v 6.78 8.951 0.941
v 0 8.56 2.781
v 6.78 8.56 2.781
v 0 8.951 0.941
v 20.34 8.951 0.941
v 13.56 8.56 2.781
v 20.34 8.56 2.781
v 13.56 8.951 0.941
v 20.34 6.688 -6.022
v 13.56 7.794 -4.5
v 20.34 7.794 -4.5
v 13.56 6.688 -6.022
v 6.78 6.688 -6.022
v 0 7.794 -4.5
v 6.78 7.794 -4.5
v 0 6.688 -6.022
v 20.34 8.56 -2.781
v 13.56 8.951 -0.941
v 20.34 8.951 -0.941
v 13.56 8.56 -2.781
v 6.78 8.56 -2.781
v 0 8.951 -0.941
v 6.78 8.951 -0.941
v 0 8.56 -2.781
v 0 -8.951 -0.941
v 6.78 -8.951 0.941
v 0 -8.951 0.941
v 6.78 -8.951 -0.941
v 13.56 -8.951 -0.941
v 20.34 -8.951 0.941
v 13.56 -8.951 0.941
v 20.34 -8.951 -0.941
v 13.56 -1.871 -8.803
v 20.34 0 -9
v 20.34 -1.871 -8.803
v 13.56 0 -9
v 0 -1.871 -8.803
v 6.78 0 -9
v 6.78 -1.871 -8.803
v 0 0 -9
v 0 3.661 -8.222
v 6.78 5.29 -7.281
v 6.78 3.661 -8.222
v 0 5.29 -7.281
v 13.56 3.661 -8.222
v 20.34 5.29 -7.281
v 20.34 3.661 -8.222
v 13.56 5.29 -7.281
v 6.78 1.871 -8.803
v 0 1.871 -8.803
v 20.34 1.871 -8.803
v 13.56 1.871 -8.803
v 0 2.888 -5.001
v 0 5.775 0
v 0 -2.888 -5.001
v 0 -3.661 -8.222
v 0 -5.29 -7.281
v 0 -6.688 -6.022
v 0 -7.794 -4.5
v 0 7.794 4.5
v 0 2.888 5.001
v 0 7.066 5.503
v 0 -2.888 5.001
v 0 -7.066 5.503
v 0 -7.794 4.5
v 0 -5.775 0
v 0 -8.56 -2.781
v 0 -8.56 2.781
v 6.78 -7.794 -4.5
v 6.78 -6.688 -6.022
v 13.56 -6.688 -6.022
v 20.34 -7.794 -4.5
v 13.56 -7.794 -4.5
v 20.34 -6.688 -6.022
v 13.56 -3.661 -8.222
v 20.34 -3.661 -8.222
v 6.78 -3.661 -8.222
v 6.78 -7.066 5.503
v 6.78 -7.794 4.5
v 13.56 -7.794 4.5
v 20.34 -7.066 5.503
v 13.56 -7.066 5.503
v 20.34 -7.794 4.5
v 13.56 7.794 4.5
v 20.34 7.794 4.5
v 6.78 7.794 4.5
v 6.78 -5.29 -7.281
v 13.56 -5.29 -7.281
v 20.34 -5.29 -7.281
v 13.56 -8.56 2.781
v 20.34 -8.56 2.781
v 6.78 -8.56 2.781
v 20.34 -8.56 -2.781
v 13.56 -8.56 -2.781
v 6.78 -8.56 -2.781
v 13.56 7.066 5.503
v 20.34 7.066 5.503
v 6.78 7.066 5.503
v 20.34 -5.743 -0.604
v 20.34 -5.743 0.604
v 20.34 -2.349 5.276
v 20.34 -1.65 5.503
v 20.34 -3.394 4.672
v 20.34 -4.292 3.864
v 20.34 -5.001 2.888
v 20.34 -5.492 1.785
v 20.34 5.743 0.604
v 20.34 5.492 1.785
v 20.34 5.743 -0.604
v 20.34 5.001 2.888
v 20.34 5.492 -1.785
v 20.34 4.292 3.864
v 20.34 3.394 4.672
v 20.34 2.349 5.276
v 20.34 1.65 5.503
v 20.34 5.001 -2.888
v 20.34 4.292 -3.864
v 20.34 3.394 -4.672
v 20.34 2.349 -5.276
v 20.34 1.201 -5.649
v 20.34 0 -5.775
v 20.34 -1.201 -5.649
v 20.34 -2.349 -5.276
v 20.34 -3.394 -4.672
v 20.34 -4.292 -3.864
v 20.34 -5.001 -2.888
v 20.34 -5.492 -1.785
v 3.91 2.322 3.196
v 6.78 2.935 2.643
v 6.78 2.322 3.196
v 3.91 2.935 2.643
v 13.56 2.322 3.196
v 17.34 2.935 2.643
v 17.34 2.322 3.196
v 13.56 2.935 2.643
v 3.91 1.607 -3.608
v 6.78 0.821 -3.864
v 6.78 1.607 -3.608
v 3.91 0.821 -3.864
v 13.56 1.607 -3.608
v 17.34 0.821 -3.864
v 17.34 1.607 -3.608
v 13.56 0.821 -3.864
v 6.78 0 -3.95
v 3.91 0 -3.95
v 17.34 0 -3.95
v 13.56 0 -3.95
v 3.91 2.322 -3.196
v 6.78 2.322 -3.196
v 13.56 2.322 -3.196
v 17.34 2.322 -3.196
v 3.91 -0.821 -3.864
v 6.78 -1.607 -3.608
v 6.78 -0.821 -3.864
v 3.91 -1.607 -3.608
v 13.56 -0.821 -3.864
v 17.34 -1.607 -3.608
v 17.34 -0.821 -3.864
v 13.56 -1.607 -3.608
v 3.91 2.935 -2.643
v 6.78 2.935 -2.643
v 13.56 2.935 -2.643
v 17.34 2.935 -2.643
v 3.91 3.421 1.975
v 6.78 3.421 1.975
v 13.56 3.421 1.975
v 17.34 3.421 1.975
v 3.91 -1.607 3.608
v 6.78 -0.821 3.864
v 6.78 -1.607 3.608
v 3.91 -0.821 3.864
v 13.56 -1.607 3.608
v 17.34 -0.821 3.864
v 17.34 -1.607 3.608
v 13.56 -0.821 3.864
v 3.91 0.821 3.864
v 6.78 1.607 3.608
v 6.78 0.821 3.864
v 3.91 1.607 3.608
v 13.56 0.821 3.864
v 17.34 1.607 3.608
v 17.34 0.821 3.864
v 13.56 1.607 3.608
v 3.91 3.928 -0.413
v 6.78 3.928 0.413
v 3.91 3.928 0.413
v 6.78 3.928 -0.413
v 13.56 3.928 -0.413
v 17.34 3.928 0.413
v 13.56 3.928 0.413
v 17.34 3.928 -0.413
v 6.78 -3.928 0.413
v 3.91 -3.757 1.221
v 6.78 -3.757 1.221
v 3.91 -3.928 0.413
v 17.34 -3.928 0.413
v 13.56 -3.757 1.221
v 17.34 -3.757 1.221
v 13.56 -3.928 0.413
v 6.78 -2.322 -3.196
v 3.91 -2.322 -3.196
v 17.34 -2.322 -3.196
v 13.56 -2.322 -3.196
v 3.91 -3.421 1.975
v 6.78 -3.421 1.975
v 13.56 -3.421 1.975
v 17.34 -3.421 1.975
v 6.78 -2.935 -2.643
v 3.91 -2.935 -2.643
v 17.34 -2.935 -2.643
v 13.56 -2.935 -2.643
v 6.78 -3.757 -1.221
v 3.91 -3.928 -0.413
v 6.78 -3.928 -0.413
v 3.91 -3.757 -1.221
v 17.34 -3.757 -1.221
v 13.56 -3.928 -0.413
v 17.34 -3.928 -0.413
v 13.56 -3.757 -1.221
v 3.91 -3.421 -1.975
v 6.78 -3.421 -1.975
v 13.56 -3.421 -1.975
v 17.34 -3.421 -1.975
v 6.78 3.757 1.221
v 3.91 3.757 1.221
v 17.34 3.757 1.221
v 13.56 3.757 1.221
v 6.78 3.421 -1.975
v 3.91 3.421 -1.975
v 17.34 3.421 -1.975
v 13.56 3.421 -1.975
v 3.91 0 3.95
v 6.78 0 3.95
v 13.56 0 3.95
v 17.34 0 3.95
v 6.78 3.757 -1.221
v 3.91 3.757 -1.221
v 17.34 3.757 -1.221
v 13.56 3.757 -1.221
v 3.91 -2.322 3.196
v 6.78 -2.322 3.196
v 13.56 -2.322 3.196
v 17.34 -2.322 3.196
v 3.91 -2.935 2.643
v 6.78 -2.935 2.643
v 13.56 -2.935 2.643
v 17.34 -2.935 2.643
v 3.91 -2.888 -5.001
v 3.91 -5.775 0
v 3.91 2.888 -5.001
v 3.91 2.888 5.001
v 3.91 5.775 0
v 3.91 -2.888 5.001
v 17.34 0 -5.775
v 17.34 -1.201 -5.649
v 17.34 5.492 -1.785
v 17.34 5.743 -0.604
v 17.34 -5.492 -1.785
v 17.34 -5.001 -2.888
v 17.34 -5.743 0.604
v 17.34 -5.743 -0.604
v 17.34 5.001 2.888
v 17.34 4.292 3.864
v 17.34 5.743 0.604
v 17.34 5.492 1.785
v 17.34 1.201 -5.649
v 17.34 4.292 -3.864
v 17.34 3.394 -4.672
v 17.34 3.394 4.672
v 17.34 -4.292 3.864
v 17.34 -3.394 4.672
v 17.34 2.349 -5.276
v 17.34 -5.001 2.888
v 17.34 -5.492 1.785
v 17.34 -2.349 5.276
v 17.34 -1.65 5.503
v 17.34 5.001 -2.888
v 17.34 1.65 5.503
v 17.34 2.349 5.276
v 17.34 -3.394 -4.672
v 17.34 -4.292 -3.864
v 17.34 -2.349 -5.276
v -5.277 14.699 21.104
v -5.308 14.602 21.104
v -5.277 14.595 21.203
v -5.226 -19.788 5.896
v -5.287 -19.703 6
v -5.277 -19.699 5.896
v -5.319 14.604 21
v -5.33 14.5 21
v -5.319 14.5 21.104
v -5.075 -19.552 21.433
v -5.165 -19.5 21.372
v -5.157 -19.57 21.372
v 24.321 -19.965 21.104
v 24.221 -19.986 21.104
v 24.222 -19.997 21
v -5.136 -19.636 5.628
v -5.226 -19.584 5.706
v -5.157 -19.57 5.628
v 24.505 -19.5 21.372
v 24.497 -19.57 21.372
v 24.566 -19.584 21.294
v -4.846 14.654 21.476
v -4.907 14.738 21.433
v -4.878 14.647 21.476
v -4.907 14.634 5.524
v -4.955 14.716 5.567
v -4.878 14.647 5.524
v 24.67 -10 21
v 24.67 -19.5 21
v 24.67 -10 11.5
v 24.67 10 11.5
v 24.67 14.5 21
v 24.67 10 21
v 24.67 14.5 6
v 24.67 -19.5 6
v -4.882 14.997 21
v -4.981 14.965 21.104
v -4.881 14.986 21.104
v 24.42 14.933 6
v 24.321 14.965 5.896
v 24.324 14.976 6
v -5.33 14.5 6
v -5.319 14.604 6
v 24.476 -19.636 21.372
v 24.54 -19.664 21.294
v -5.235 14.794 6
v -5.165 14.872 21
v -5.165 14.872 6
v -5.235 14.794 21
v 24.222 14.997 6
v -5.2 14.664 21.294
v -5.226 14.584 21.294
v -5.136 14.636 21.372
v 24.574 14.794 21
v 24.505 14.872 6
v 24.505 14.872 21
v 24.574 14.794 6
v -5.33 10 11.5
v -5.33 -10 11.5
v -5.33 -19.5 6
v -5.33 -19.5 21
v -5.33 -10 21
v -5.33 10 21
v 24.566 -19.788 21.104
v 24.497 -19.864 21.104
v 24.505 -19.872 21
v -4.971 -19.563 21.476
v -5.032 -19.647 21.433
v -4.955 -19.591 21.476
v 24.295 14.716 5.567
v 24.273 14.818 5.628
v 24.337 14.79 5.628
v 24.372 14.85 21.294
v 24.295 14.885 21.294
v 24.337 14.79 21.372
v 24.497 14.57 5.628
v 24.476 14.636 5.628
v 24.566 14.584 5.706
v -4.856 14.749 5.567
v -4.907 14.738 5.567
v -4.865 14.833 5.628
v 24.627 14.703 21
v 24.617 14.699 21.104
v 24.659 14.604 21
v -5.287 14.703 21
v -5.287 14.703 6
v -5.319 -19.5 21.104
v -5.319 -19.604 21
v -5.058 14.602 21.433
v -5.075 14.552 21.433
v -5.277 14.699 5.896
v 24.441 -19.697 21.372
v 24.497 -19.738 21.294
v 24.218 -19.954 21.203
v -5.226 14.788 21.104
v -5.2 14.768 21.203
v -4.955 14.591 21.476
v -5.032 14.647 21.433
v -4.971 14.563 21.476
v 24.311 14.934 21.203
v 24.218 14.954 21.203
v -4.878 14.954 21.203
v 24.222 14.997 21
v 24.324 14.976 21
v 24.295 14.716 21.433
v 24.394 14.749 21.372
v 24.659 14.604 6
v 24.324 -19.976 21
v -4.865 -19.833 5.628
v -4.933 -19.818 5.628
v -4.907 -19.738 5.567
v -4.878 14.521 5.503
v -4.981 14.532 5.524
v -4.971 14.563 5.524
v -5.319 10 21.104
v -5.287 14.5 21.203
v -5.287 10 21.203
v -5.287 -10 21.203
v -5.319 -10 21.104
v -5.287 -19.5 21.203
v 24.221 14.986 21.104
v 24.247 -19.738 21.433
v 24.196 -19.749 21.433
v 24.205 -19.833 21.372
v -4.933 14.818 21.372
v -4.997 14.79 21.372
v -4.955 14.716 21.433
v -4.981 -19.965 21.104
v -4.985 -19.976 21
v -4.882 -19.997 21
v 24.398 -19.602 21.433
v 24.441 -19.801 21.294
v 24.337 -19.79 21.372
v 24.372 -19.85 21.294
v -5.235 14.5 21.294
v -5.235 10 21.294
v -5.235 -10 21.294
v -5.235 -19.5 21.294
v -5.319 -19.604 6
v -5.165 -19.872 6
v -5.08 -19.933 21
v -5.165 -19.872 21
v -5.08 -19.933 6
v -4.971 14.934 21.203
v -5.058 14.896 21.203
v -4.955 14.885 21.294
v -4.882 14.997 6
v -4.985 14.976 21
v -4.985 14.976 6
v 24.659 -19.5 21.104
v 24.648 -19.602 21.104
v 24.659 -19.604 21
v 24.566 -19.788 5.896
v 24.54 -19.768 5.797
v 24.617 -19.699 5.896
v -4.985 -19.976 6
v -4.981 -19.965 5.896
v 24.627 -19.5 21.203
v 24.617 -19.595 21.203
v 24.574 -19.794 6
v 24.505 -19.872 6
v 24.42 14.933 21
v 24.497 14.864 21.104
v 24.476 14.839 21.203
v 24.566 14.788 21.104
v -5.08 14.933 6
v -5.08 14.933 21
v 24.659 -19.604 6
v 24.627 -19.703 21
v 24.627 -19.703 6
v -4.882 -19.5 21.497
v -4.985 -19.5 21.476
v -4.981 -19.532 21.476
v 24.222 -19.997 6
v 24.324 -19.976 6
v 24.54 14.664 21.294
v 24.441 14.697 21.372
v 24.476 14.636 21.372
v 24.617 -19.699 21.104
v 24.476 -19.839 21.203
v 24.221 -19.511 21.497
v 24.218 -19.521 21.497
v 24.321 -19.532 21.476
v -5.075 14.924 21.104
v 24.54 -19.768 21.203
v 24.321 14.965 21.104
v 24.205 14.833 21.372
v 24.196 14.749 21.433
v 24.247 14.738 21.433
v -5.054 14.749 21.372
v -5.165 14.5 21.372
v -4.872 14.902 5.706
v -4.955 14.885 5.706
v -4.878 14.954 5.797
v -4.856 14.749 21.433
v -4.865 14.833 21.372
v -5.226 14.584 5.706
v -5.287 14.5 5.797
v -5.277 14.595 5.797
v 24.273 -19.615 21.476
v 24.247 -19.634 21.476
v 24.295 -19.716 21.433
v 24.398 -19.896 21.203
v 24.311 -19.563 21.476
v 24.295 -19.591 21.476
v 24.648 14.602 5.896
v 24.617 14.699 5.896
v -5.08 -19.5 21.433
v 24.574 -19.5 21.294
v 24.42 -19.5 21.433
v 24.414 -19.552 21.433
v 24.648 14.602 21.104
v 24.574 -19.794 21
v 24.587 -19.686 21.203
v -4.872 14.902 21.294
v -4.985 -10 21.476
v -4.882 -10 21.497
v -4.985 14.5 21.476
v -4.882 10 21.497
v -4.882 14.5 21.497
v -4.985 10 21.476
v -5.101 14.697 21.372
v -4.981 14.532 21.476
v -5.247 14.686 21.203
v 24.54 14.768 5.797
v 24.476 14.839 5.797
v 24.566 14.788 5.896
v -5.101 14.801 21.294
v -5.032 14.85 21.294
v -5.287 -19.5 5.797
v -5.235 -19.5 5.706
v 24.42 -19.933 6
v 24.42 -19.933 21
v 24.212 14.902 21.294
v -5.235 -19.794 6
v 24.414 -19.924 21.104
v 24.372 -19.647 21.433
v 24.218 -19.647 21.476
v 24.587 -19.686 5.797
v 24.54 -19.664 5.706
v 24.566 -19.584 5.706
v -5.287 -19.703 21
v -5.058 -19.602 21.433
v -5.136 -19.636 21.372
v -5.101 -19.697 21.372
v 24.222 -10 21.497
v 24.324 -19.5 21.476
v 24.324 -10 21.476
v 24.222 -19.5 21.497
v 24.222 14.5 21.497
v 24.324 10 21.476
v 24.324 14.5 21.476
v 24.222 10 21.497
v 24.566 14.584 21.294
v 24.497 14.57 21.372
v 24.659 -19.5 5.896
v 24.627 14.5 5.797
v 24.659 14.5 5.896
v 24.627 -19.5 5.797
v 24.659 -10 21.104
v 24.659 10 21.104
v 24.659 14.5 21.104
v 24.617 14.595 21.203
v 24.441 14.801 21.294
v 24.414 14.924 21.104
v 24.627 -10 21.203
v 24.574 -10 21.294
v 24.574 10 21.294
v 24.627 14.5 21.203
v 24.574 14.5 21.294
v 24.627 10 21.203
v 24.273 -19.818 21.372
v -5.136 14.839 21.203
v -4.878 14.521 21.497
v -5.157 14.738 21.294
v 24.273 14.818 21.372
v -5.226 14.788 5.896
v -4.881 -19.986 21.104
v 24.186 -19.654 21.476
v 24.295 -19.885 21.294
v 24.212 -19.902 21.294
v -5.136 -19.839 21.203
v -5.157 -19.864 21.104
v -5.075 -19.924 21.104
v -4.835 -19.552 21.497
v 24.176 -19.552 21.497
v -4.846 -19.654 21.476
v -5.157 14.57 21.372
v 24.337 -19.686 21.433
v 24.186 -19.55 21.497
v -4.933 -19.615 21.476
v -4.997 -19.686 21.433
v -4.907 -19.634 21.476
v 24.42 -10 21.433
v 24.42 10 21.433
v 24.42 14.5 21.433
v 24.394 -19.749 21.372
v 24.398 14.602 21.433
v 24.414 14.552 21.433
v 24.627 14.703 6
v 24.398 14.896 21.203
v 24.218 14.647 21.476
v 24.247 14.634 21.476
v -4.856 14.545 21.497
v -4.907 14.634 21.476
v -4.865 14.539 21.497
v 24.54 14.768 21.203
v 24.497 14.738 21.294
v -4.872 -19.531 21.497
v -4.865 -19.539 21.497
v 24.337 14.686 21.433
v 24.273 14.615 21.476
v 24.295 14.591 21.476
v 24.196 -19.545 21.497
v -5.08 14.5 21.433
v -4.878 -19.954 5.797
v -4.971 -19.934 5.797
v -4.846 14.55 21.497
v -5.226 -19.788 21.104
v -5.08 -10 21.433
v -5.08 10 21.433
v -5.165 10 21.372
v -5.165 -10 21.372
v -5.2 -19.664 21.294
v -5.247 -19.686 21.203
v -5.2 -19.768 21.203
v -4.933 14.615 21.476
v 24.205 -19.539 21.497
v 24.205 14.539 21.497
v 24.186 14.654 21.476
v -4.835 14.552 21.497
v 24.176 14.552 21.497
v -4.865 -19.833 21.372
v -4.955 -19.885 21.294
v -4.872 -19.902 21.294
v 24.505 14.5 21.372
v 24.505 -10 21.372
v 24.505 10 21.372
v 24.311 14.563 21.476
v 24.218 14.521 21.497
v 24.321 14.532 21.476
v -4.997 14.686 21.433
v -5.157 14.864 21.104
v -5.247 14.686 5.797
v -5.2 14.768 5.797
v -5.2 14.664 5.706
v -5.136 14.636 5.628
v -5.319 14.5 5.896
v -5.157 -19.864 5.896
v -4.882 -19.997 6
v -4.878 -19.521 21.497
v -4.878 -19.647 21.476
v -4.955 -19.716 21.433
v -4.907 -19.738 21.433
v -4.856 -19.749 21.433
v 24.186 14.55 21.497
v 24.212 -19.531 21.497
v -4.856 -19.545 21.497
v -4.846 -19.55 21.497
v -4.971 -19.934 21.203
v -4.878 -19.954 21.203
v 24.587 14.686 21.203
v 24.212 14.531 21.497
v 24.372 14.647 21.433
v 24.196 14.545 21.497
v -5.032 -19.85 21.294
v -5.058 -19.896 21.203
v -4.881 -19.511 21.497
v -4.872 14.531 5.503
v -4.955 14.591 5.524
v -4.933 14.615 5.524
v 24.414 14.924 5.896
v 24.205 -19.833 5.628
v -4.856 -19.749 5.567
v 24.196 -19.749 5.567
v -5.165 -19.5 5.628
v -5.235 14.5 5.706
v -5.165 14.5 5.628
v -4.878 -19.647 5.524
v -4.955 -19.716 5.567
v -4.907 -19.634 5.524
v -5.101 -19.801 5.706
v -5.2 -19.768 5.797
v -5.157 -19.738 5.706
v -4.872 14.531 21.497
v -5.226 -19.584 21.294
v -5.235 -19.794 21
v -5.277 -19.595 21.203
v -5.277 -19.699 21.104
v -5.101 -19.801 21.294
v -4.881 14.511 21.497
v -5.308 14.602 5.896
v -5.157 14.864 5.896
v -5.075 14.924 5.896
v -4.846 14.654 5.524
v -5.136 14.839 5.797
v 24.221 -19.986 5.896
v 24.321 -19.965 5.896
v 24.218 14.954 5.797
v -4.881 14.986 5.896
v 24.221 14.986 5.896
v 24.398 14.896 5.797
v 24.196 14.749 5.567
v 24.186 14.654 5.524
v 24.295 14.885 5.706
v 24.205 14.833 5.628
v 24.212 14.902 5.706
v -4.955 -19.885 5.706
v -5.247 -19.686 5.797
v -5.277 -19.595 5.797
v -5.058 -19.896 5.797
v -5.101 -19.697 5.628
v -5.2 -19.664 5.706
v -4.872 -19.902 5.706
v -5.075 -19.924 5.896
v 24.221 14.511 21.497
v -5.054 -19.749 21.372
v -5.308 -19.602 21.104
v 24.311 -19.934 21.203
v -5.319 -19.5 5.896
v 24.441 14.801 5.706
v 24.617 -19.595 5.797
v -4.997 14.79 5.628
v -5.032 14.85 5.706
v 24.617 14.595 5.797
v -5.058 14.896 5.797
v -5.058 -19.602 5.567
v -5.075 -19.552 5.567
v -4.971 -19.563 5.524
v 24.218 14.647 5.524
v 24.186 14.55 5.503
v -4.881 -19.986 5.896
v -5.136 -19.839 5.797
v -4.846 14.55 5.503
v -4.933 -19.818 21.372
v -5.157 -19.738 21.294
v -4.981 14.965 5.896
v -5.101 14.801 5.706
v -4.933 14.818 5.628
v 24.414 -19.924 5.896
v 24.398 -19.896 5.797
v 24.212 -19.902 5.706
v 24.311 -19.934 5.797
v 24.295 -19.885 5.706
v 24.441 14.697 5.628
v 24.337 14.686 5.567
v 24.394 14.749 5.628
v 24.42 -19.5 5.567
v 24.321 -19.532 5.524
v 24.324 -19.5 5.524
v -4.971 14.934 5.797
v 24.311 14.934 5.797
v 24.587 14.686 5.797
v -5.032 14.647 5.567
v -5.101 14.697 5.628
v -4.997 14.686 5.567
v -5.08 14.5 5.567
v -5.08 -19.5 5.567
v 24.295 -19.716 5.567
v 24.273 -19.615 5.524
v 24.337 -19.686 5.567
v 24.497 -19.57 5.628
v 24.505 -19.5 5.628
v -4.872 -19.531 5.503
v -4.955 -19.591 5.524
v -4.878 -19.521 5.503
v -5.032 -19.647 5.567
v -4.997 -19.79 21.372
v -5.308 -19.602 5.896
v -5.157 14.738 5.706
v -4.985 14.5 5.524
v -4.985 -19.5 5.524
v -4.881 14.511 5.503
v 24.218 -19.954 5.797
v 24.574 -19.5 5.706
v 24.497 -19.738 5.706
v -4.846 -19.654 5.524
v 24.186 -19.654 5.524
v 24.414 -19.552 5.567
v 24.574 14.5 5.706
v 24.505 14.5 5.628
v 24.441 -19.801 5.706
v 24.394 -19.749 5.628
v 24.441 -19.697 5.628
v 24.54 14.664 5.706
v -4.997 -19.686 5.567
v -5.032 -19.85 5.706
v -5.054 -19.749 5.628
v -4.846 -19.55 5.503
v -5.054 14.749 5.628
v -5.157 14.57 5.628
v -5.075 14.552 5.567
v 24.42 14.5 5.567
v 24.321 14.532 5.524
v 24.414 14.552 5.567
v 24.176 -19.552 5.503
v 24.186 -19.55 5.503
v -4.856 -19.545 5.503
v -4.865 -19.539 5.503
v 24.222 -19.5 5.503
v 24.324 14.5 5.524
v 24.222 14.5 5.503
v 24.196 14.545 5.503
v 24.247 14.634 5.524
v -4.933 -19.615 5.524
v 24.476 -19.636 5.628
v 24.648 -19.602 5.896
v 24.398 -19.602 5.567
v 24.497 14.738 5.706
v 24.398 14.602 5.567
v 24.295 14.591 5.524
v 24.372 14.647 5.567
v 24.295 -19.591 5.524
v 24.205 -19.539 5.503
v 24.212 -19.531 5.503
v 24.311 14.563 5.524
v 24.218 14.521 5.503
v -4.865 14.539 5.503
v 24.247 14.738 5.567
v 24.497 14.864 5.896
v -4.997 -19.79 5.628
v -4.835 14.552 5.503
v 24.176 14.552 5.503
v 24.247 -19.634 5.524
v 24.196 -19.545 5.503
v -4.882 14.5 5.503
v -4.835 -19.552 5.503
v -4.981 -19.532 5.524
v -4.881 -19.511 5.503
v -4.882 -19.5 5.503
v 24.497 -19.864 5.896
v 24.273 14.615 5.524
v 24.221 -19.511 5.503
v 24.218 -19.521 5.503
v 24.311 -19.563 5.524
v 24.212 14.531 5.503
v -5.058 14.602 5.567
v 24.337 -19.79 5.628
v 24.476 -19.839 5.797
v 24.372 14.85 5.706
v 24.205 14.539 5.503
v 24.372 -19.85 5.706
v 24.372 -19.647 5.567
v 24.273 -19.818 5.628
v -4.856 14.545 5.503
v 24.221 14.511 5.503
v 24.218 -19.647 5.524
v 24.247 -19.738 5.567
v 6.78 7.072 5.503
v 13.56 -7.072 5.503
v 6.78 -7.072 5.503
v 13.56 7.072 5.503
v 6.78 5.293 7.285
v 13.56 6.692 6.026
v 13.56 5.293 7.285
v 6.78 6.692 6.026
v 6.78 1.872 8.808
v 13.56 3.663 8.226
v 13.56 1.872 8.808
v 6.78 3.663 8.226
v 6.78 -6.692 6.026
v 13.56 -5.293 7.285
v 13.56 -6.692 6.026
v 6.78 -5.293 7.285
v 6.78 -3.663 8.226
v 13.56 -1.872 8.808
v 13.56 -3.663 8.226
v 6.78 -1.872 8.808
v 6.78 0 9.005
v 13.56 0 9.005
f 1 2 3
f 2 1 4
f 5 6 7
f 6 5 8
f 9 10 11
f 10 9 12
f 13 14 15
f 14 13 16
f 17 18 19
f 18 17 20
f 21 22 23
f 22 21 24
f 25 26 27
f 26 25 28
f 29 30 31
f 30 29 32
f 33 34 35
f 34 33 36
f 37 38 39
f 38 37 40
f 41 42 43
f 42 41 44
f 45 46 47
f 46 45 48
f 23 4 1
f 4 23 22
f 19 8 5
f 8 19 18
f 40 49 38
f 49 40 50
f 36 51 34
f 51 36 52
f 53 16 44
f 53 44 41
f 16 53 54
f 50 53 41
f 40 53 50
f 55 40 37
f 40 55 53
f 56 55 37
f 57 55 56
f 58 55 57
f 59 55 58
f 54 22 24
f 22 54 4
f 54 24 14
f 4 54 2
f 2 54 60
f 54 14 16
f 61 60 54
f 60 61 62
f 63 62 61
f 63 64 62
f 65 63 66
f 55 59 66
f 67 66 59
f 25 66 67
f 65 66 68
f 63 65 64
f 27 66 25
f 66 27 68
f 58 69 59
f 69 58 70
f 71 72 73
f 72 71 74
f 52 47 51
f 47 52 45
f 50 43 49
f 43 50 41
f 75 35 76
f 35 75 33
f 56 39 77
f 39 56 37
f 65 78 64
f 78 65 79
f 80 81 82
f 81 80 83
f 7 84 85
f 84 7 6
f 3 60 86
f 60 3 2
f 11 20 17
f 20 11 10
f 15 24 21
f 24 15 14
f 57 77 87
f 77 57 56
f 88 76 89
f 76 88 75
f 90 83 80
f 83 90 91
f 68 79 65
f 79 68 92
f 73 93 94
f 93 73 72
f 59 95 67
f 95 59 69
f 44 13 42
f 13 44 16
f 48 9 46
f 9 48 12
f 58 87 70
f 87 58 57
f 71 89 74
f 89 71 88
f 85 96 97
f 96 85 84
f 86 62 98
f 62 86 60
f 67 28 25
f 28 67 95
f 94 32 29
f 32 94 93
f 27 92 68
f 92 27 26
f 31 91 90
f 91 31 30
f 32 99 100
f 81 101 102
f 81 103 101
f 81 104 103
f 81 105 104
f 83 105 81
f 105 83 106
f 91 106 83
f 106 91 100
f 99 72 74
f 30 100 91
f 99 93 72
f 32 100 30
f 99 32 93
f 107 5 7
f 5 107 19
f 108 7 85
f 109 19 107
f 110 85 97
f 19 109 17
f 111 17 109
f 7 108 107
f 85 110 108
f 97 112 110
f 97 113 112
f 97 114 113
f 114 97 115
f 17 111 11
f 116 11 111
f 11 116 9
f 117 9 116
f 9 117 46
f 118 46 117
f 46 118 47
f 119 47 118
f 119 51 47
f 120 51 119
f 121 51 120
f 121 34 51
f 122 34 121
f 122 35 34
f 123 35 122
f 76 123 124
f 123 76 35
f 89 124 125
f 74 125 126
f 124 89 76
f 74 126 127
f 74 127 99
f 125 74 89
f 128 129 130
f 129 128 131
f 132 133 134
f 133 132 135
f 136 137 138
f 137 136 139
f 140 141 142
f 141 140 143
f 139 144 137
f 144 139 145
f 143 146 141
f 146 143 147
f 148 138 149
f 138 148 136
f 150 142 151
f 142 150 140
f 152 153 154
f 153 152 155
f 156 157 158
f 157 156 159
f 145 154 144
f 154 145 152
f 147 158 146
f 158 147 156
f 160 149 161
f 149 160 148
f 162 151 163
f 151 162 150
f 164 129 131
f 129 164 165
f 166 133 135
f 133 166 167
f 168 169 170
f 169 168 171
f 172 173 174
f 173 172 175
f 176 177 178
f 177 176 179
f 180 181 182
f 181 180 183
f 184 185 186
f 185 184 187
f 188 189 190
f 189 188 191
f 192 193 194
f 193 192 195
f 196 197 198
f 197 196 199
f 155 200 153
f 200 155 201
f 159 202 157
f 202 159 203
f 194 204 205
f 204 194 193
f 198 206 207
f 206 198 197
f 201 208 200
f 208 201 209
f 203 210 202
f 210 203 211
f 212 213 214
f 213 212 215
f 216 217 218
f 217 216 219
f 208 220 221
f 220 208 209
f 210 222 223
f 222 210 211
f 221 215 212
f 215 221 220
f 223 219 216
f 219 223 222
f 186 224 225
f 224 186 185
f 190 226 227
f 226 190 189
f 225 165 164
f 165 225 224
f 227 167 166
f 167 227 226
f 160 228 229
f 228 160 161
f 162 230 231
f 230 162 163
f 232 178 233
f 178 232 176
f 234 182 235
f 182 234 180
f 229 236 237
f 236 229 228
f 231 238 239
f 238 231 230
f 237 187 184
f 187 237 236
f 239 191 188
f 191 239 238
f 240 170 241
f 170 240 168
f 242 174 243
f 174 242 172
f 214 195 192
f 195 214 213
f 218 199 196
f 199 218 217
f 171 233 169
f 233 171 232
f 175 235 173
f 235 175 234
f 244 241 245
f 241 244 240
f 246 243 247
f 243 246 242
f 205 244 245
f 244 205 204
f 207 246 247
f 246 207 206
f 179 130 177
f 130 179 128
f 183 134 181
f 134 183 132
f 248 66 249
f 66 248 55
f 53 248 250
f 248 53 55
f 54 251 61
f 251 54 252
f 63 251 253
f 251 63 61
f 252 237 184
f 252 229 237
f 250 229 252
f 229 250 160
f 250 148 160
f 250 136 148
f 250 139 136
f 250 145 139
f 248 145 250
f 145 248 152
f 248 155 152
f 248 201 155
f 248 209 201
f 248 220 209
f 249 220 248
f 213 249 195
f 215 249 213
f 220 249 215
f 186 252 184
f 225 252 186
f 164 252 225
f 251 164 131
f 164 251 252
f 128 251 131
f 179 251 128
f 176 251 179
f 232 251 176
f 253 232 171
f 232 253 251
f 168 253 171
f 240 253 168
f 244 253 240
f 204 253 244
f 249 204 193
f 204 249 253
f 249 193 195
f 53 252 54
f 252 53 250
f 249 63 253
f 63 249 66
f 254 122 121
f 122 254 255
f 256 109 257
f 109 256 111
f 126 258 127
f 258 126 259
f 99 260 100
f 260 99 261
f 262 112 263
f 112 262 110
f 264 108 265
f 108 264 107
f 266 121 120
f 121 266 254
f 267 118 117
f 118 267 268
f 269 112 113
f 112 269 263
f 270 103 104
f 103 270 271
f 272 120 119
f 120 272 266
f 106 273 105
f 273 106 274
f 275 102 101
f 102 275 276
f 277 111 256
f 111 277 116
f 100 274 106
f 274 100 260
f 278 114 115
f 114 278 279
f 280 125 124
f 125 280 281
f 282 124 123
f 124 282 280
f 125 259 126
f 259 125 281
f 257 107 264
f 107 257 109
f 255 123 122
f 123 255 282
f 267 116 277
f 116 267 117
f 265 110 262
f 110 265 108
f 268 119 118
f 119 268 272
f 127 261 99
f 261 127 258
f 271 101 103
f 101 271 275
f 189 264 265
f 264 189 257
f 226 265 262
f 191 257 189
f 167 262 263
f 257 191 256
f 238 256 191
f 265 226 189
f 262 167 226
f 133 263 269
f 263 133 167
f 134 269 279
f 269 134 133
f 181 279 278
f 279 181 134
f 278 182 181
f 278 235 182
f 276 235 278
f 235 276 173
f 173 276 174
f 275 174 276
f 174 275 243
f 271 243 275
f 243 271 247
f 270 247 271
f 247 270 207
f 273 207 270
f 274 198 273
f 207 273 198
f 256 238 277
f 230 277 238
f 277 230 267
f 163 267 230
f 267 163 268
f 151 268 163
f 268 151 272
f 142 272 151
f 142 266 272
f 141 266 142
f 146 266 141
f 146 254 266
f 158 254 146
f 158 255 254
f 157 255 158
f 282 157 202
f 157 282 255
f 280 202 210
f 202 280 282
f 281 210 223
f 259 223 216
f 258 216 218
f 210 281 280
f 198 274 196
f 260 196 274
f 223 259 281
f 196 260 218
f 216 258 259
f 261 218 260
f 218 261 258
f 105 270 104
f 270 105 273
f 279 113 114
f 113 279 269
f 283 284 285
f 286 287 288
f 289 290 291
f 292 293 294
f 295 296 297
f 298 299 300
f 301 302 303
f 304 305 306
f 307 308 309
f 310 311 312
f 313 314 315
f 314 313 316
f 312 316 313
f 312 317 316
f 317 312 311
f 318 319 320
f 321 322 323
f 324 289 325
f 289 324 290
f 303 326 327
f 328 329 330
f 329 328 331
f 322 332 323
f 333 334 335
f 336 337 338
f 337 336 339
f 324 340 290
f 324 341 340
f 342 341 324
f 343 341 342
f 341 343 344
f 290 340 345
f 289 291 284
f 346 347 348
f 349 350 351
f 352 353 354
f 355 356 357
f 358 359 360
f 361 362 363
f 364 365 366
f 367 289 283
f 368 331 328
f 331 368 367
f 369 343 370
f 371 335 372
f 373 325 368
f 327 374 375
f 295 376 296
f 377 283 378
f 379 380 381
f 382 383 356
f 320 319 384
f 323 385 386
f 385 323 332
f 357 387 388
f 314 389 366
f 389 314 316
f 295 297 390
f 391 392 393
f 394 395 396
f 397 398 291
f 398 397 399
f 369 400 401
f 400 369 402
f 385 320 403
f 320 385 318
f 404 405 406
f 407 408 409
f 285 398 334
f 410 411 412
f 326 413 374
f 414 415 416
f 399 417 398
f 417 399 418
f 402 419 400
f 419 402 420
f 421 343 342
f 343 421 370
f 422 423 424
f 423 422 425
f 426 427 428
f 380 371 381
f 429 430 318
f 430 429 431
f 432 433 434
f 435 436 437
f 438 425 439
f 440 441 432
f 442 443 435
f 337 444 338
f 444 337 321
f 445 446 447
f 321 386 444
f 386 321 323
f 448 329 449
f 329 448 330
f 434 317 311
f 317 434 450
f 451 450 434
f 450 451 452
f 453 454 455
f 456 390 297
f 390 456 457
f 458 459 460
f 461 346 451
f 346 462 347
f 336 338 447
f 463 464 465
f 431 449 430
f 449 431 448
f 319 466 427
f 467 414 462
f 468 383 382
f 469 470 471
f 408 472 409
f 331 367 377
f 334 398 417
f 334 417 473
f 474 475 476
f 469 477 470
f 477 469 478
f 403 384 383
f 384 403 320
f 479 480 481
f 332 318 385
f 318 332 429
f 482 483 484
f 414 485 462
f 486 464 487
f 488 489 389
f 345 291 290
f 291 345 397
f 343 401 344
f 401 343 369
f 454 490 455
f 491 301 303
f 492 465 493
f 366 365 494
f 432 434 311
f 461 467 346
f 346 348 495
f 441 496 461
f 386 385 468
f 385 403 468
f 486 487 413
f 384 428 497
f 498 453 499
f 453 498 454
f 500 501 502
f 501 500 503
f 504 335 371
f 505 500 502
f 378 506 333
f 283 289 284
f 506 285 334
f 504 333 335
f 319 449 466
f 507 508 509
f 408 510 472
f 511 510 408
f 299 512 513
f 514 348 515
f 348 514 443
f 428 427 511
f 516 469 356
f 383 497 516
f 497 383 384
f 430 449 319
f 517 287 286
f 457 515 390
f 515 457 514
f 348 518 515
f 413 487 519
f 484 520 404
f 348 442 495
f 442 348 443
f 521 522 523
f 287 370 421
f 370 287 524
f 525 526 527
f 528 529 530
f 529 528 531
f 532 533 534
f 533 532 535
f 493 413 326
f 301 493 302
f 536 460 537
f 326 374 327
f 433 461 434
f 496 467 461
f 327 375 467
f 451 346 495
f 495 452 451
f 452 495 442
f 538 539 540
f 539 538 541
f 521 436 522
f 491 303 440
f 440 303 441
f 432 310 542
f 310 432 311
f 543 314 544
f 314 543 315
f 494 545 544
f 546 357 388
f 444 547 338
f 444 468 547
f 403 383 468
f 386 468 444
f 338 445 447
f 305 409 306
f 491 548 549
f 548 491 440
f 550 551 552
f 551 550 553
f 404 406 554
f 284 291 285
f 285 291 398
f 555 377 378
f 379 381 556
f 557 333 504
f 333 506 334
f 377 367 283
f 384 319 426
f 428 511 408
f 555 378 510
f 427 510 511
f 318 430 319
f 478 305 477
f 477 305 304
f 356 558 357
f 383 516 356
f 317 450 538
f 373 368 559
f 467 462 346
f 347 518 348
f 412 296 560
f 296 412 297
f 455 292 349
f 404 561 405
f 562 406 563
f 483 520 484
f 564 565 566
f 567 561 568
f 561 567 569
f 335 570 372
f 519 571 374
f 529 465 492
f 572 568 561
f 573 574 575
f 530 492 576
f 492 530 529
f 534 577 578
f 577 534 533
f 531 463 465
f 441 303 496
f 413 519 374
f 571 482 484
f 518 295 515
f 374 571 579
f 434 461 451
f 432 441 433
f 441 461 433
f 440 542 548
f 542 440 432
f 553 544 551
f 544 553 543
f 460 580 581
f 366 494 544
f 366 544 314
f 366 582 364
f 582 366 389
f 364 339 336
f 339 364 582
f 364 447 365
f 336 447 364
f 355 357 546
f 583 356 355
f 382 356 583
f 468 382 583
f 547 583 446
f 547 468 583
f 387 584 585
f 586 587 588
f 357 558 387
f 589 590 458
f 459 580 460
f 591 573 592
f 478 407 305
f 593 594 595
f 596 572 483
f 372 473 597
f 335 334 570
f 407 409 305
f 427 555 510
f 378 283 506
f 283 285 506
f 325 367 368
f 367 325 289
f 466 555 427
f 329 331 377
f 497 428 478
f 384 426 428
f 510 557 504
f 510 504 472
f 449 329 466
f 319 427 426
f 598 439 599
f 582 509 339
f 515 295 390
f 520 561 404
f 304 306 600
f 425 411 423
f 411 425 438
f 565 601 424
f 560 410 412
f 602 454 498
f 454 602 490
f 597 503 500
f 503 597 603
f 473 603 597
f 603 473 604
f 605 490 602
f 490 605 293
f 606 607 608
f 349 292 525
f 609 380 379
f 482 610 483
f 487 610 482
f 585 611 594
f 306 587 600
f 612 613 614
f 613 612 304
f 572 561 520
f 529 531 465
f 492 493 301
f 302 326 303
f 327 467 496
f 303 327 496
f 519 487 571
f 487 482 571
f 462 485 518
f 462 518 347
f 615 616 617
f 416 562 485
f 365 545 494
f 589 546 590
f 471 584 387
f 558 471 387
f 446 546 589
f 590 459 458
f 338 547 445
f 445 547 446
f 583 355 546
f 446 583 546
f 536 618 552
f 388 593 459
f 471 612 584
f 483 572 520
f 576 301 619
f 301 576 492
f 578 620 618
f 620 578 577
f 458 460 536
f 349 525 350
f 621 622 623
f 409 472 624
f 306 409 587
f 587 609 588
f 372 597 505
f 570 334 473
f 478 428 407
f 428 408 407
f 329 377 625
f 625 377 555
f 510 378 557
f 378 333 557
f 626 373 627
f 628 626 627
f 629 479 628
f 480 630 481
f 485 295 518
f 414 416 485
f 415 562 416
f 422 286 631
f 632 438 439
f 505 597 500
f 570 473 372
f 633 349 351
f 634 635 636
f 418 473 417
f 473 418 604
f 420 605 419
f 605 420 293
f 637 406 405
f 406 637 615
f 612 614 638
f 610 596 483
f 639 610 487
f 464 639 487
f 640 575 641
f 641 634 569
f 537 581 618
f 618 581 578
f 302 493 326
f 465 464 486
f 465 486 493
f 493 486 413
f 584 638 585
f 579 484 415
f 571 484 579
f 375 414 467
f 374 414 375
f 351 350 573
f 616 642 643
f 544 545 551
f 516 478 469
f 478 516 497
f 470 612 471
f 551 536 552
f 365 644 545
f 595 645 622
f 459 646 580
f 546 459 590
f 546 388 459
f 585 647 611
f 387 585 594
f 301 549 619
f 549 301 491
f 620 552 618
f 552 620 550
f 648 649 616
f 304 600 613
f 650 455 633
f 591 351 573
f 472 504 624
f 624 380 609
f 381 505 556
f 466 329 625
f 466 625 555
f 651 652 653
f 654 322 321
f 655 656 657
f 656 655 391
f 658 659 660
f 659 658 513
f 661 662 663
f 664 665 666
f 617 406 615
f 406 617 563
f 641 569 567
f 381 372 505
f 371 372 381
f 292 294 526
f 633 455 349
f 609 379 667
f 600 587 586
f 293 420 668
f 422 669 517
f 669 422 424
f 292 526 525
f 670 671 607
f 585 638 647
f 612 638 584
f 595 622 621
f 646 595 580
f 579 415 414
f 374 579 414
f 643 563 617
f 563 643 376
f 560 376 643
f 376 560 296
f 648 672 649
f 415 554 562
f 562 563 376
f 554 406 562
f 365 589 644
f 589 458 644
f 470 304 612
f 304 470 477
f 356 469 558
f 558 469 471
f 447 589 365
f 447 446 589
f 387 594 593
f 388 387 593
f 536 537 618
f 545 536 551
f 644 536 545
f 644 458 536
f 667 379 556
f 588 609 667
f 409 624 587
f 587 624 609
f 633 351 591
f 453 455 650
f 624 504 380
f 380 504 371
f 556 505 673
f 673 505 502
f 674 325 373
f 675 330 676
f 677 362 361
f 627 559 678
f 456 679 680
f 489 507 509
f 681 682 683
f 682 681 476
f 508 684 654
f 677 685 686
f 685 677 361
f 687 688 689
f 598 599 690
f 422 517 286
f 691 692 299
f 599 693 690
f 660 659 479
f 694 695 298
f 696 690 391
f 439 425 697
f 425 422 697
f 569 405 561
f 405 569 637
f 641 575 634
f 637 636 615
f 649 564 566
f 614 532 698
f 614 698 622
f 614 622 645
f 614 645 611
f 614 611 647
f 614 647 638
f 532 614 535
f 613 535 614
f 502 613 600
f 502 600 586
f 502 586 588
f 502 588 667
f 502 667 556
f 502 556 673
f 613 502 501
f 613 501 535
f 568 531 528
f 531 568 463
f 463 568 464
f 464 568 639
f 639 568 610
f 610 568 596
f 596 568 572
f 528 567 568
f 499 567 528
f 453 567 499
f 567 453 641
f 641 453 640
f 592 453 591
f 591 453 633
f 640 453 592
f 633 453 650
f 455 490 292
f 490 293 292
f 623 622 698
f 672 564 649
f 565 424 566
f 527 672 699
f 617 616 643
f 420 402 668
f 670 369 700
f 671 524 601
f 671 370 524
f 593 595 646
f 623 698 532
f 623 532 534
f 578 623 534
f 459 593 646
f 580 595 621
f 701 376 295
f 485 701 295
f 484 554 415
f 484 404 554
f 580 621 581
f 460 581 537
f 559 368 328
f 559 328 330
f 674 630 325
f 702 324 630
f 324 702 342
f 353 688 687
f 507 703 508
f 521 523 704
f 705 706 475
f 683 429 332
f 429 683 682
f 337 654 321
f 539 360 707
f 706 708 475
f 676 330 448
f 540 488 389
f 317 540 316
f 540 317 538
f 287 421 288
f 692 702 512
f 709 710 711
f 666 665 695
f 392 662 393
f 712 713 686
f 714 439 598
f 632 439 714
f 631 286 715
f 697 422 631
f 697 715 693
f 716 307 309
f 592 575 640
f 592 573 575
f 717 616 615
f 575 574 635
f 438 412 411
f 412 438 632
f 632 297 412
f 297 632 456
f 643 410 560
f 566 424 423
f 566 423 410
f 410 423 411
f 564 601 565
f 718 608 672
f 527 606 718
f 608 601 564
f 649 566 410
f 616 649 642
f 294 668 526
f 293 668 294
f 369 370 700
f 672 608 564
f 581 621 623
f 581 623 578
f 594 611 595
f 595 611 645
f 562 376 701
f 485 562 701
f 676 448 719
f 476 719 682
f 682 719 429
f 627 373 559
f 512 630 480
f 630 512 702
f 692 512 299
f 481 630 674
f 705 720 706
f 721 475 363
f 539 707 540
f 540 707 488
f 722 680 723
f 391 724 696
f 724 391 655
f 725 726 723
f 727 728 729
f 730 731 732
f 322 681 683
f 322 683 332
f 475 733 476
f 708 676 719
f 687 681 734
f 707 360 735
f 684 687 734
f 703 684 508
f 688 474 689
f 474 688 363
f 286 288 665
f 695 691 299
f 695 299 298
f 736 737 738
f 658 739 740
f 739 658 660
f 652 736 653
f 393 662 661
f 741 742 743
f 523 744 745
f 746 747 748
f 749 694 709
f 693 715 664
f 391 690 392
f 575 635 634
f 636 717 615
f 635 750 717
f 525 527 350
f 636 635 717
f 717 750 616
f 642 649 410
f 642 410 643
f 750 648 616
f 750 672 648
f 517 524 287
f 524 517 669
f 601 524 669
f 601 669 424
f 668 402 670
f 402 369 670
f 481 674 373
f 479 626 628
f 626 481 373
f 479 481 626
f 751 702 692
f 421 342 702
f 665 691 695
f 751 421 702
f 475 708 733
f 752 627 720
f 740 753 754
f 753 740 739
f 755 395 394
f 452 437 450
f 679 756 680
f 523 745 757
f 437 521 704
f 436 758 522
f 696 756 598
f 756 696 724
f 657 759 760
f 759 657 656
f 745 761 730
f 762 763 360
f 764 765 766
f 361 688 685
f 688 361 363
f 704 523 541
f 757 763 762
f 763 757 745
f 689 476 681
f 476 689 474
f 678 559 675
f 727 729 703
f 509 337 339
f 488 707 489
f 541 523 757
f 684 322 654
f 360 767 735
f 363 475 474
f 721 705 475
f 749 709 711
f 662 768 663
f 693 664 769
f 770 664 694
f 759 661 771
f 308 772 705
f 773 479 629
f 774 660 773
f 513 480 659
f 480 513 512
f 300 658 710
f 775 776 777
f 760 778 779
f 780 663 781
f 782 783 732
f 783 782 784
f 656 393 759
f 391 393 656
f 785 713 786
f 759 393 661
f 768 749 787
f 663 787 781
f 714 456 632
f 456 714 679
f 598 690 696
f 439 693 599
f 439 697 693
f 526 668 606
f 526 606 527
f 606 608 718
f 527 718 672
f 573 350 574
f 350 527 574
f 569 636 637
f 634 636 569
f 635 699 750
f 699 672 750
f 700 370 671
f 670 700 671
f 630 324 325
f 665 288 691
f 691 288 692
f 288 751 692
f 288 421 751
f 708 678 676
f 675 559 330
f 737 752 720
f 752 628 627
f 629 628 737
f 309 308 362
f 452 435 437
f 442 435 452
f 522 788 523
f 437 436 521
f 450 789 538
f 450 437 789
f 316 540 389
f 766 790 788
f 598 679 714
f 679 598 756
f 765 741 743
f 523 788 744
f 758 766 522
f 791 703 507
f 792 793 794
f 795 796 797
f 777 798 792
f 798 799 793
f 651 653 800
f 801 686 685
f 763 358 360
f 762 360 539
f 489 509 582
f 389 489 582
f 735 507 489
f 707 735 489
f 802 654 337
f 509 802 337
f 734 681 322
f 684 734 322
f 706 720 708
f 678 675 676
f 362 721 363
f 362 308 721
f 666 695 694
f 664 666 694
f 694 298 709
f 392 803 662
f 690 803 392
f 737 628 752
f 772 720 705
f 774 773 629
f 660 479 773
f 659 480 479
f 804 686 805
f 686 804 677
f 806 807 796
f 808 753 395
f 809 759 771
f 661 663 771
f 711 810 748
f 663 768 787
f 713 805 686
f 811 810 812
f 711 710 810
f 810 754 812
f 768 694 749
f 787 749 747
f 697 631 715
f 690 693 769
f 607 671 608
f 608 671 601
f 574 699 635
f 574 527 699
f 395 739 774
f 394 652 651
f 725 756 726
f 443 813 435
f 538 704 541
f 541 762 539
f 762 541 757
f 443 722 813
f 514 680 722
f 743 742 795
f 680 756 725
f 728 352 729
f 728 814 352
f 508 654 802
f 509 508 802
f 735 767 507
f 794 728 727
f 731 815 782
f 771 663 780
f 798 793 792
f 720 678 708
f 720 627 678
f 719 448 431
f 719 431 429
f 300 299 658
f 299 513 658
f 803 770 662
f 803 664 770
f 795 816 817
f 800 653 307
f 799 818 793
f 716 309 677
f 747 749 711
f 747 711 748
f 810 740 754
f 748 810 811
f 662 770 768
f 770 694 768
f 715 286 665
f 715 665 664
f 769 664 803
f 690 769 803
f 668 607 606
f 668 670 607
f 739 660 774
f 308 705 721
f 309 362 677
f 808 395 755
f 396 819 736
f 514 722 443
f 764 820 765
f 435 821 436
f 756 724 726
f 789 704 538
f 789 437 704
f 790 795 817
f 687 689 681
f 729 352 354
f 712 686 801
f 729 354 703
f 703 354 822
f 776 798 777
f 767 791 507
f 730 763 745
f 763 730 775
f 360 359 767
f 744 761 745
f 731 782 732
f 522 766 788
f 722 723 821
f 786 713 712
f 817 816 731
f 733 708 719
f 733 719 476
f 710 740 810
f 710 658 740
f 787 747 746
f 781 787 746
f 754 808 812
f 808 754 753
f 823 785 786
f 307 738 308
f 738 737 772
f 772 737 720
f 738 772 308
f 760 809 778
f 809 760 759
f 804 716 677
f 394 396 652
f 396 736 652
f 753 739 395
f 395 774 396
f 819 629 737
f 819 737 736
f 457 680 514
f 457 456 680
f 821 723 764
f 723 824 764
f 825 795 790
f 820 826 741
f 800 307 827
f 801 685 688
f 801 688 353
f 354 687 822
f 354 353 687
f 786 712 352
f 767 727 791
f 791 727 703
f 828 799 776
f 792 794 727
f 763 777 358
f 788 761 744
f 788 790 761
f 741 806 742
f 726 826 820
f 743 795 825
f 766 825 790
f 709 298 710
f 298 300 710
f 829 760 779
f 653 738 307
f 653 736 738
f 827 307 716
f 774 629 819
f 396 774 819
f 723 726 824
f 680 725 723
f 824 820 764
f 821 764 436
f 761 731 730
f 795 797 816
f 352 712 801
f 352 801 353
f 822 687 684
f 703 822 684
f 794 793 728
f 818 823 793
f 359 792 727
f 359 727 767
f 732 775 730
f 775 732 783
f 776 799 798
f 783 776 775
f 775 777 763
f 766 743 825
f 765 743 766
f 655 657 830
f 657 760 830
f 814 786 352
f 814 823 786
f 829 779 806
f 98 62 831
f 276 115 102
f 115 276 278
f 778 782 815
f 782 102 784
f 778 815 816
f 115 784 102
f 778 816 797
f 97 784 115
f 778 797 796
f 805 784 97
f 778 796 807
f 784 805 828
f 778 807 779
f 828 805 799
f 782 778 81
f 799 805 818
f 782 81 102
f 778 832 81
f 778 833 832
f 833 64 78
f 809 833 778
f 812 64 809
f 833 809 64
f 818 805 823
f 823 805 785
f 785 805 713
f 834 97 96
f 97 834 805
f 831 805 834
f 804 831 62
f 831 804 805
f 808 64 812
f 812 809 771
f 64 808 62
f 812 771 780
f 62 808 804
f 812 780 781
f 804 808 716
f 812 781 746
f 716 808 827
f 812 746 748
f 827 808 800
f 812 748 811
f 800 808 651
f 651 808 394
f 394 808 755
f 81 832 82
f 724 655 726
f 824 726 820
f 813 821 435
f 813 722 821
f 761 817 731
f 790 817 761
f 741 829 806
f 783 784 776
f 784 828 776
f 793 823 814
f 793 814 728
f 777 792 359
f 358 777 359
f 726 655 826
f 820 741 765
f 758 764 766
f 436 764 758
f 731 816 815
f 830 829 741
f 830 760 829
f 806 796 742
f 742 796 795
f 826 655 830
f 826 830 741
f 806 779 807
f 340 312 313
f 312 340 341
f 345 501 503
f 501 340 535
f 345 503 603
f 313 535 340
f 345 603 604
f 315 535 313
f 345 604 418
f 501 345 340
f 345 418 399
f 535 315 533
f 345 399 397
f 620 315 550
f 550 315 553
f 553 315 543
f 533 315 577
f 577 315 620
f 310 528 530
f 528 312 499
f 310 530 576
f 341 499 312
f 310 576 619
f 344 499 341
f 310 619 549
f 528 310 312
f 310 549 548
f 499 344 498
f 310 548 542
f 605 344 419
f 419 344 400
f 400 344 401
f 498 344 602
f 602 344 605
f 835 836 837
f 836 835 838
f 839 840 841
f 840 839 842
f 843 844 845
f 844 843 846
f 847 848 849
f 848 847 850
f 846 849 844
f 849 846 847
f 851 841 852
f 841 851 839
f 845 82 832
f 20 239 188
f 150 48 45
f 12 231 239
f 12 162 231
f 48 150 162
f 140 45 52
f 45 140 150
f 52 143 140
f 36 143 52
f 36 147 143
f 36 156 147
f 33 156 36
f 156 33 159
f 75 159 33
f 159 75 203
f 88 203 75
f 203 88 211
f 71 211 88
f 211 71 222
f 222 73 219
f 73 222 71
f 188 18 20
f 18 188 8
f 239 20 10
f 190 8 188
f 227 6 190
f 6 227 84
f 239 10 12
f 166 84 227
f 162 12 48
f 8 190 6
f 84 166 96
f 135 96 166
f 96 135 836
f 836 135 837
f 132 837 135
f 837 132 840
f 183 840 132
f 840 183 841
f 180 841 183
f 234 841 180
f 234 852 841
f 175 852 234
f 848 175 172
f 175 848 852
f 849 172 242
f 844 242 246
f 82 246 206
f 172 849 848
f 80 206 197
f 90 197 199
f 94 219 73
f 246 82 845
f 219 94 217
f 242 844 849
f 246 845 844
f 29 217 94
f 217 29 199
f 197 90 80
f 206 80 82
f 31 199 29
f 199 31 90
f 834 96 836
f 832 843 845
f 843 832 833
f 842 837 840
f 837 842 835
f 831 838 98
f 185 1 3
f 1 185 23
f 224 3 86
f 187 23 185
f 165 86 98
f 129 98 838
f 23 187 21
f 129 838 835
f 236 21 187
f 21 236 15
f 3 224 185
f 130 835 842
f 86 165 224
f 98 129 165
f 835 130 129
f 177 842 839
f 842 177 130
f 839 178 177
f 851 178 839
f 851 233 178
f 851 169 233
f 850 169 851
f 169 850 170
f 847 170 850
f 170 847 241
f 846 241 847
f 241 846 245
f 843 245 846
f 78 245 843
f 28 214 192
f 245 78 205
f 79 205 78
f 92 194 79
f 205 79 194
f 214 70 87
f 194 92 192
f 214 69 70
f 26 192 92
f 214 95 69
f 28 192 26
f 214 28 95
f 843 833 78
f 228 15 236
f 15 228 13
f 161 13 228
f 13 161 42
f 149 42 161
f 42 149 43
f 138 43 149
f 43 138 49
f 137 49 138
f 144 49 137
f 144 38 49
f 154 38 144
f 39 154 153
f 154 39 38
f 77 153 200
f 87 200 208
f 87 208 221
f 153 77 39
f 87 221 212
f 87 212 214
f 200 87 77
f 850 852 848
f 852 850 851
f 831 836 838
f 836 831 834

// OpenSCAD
// file: ../common/roundedcube.scad
// More information: https://danielupshaw.com/openscad-rounded-corners/
// Higher definition curves
$fs = 0.01;

module roundedcube(size = [1, 1, 1], center = false, radius = 0.5, apply_to = "all") {
	// If single value, convert to [x, y, z] vector
	size = (size[0] == undef) ? [size, size, size] : size;

	translate_min = radius;
	translate_xmax = size[0] - radius;
	translate_ymax = size[1] - radius;
	translate_zmax = size[2] - radius;

	diameter = radius * 2;

	module build_point(type = "sphere", rotate = [0, 0, 0]) {
		if (type == "sphere") {
			sphere(r = radius);
		} else if (type == "cylinder") {
			rotate(a = rotate)
			cylinder(h = diameter, r = radius, center = true);
		}
	}

	obj_translate = (center == false) ?
		[0, 0, 0] : [
			-(size[0] / 2),
			-(size[1] / 2),
			-(size[2] / 2)
		];

	translate(v = obj_translate) {
		hull() {
			for (translate_x = [translate_min, translate_xmax]) {
				x_at = (translate_x == translate_min) ? "min" : "max";
				for (translate_y = [translate_min, translate_ymax]) {
					y_at = (translate_y == translate_min) ? "min" : "max";
					for (translate_z = [translate_min, translate_zmax]) {
						z_at = (translate_z == translate_min) ? "min" : "max";

						translate(v = [translate_x, translate_y, translate_z])
						if (
							(apply_to == "all") ||
							(apply_to == "xmin" && x_at == "min") || (apply_to == "xmax" && x_at == "max") ||
							(apply_to == "ymin" && y_at == "min") || (apply_to == "ymax" && y_at == "max") ||
							(apply_to == "zmin" && z_at == "min") || (apply_to == "zmax" && z_at == "max")
						) {
							build_point("sphere");
						} else {
							rotate = 
								(apply_to == "xmin" || apply_to == "xmax" || apply_to == "x") ? [0, 90, 0] : (
								(apply_to == "ymin" || apply_to == "ymax" || apply_to == "y") ? [90, 90, 0] :
								[0, 0, 0]
							);
							build_point("cylinder", rotate);
						}
					}
				}
			}
		}
	}
}
// file: ../common/colours.scad
red = [1,0,0];
blue = [0,0,1];
green = [0,1,0];

cyan = [0,1,1];
magenta = [1,0,1];
yellow = [1,1,0];
// file: ../common/shapes.scad
module hexagon(radius, height) {
  cylinder(r=radius,$fn=6,h=height);
}
module ring(d1, d2, h) {
    difference() {
        cylinder(d = d1, h = h);
        translate([ 0, 0, -1 ]) cylinder(d = d2, h = h+2);
    }
}
// main file
// Created in 2020 by Your Name Herehunndjbhtbhcnbleuvbvr.
// This work is released with CC0 into the public domain.
// https://creativecommons.org/publicdomain/zero/1.0/

$fn=30;

mon_thick=20;
m6_diam=11.55;
m6_thick=4;
m6_head=3;
b_depth=35;
b_width=30;
b_height=16;
clasp_thick=6.78;
clasp_hole_i=7.9;
clasp_hole_o=18;
clasp_offset_z=5.5;
clasp_offset_y=-20;
clasp_offset_x=(clasp_thick*3-b_depth)/2+2;
clasp_offset=[clasp_offset_x,clasp_offset_y,clasp_offset_z];
gap_offset=[clasp_offset_x-1,clasp_offset_y+mon_thick/2,clasp_offset_z+6];

include <../common/shapes.scad>
include <../common/colours.scad>
include <../common/roundedcube.scad>
difference() {
union() {
        difference() {
            difference() {
                color("grey",0.8) rotate([0,90,0]) ring(clasp_hole_o, clasp_hole_i, clasp_thick*3); 
                color(blue) rotate([0,90,0]) translate([0, 0, -0.1]) rotate([0,0,30]) hexagon(m6_diam/2, m6_thick+0.01);
            }
            color(magenta) rotate([0,90,0]) translate([0, 0, clasp_thick*3-m6_head]) cylinder(d=m6_diam, h=m6_head+0.01);
        }

    difference(){
        color("gray", 0.8) translate(clasp_offset) {
                roundedcube(size=[b_width,b_depth,b_height]);
        }

        color("orange") translate(gap_offset) cube([b_width+2,mon_thick,b_height]);
    }
}
        color("pink") rotate([0,90,0]) translate([0, 0, clasp_thick]) cylinder(d=clasp_hole_o+0.01,h=clasp_thick);
    }
